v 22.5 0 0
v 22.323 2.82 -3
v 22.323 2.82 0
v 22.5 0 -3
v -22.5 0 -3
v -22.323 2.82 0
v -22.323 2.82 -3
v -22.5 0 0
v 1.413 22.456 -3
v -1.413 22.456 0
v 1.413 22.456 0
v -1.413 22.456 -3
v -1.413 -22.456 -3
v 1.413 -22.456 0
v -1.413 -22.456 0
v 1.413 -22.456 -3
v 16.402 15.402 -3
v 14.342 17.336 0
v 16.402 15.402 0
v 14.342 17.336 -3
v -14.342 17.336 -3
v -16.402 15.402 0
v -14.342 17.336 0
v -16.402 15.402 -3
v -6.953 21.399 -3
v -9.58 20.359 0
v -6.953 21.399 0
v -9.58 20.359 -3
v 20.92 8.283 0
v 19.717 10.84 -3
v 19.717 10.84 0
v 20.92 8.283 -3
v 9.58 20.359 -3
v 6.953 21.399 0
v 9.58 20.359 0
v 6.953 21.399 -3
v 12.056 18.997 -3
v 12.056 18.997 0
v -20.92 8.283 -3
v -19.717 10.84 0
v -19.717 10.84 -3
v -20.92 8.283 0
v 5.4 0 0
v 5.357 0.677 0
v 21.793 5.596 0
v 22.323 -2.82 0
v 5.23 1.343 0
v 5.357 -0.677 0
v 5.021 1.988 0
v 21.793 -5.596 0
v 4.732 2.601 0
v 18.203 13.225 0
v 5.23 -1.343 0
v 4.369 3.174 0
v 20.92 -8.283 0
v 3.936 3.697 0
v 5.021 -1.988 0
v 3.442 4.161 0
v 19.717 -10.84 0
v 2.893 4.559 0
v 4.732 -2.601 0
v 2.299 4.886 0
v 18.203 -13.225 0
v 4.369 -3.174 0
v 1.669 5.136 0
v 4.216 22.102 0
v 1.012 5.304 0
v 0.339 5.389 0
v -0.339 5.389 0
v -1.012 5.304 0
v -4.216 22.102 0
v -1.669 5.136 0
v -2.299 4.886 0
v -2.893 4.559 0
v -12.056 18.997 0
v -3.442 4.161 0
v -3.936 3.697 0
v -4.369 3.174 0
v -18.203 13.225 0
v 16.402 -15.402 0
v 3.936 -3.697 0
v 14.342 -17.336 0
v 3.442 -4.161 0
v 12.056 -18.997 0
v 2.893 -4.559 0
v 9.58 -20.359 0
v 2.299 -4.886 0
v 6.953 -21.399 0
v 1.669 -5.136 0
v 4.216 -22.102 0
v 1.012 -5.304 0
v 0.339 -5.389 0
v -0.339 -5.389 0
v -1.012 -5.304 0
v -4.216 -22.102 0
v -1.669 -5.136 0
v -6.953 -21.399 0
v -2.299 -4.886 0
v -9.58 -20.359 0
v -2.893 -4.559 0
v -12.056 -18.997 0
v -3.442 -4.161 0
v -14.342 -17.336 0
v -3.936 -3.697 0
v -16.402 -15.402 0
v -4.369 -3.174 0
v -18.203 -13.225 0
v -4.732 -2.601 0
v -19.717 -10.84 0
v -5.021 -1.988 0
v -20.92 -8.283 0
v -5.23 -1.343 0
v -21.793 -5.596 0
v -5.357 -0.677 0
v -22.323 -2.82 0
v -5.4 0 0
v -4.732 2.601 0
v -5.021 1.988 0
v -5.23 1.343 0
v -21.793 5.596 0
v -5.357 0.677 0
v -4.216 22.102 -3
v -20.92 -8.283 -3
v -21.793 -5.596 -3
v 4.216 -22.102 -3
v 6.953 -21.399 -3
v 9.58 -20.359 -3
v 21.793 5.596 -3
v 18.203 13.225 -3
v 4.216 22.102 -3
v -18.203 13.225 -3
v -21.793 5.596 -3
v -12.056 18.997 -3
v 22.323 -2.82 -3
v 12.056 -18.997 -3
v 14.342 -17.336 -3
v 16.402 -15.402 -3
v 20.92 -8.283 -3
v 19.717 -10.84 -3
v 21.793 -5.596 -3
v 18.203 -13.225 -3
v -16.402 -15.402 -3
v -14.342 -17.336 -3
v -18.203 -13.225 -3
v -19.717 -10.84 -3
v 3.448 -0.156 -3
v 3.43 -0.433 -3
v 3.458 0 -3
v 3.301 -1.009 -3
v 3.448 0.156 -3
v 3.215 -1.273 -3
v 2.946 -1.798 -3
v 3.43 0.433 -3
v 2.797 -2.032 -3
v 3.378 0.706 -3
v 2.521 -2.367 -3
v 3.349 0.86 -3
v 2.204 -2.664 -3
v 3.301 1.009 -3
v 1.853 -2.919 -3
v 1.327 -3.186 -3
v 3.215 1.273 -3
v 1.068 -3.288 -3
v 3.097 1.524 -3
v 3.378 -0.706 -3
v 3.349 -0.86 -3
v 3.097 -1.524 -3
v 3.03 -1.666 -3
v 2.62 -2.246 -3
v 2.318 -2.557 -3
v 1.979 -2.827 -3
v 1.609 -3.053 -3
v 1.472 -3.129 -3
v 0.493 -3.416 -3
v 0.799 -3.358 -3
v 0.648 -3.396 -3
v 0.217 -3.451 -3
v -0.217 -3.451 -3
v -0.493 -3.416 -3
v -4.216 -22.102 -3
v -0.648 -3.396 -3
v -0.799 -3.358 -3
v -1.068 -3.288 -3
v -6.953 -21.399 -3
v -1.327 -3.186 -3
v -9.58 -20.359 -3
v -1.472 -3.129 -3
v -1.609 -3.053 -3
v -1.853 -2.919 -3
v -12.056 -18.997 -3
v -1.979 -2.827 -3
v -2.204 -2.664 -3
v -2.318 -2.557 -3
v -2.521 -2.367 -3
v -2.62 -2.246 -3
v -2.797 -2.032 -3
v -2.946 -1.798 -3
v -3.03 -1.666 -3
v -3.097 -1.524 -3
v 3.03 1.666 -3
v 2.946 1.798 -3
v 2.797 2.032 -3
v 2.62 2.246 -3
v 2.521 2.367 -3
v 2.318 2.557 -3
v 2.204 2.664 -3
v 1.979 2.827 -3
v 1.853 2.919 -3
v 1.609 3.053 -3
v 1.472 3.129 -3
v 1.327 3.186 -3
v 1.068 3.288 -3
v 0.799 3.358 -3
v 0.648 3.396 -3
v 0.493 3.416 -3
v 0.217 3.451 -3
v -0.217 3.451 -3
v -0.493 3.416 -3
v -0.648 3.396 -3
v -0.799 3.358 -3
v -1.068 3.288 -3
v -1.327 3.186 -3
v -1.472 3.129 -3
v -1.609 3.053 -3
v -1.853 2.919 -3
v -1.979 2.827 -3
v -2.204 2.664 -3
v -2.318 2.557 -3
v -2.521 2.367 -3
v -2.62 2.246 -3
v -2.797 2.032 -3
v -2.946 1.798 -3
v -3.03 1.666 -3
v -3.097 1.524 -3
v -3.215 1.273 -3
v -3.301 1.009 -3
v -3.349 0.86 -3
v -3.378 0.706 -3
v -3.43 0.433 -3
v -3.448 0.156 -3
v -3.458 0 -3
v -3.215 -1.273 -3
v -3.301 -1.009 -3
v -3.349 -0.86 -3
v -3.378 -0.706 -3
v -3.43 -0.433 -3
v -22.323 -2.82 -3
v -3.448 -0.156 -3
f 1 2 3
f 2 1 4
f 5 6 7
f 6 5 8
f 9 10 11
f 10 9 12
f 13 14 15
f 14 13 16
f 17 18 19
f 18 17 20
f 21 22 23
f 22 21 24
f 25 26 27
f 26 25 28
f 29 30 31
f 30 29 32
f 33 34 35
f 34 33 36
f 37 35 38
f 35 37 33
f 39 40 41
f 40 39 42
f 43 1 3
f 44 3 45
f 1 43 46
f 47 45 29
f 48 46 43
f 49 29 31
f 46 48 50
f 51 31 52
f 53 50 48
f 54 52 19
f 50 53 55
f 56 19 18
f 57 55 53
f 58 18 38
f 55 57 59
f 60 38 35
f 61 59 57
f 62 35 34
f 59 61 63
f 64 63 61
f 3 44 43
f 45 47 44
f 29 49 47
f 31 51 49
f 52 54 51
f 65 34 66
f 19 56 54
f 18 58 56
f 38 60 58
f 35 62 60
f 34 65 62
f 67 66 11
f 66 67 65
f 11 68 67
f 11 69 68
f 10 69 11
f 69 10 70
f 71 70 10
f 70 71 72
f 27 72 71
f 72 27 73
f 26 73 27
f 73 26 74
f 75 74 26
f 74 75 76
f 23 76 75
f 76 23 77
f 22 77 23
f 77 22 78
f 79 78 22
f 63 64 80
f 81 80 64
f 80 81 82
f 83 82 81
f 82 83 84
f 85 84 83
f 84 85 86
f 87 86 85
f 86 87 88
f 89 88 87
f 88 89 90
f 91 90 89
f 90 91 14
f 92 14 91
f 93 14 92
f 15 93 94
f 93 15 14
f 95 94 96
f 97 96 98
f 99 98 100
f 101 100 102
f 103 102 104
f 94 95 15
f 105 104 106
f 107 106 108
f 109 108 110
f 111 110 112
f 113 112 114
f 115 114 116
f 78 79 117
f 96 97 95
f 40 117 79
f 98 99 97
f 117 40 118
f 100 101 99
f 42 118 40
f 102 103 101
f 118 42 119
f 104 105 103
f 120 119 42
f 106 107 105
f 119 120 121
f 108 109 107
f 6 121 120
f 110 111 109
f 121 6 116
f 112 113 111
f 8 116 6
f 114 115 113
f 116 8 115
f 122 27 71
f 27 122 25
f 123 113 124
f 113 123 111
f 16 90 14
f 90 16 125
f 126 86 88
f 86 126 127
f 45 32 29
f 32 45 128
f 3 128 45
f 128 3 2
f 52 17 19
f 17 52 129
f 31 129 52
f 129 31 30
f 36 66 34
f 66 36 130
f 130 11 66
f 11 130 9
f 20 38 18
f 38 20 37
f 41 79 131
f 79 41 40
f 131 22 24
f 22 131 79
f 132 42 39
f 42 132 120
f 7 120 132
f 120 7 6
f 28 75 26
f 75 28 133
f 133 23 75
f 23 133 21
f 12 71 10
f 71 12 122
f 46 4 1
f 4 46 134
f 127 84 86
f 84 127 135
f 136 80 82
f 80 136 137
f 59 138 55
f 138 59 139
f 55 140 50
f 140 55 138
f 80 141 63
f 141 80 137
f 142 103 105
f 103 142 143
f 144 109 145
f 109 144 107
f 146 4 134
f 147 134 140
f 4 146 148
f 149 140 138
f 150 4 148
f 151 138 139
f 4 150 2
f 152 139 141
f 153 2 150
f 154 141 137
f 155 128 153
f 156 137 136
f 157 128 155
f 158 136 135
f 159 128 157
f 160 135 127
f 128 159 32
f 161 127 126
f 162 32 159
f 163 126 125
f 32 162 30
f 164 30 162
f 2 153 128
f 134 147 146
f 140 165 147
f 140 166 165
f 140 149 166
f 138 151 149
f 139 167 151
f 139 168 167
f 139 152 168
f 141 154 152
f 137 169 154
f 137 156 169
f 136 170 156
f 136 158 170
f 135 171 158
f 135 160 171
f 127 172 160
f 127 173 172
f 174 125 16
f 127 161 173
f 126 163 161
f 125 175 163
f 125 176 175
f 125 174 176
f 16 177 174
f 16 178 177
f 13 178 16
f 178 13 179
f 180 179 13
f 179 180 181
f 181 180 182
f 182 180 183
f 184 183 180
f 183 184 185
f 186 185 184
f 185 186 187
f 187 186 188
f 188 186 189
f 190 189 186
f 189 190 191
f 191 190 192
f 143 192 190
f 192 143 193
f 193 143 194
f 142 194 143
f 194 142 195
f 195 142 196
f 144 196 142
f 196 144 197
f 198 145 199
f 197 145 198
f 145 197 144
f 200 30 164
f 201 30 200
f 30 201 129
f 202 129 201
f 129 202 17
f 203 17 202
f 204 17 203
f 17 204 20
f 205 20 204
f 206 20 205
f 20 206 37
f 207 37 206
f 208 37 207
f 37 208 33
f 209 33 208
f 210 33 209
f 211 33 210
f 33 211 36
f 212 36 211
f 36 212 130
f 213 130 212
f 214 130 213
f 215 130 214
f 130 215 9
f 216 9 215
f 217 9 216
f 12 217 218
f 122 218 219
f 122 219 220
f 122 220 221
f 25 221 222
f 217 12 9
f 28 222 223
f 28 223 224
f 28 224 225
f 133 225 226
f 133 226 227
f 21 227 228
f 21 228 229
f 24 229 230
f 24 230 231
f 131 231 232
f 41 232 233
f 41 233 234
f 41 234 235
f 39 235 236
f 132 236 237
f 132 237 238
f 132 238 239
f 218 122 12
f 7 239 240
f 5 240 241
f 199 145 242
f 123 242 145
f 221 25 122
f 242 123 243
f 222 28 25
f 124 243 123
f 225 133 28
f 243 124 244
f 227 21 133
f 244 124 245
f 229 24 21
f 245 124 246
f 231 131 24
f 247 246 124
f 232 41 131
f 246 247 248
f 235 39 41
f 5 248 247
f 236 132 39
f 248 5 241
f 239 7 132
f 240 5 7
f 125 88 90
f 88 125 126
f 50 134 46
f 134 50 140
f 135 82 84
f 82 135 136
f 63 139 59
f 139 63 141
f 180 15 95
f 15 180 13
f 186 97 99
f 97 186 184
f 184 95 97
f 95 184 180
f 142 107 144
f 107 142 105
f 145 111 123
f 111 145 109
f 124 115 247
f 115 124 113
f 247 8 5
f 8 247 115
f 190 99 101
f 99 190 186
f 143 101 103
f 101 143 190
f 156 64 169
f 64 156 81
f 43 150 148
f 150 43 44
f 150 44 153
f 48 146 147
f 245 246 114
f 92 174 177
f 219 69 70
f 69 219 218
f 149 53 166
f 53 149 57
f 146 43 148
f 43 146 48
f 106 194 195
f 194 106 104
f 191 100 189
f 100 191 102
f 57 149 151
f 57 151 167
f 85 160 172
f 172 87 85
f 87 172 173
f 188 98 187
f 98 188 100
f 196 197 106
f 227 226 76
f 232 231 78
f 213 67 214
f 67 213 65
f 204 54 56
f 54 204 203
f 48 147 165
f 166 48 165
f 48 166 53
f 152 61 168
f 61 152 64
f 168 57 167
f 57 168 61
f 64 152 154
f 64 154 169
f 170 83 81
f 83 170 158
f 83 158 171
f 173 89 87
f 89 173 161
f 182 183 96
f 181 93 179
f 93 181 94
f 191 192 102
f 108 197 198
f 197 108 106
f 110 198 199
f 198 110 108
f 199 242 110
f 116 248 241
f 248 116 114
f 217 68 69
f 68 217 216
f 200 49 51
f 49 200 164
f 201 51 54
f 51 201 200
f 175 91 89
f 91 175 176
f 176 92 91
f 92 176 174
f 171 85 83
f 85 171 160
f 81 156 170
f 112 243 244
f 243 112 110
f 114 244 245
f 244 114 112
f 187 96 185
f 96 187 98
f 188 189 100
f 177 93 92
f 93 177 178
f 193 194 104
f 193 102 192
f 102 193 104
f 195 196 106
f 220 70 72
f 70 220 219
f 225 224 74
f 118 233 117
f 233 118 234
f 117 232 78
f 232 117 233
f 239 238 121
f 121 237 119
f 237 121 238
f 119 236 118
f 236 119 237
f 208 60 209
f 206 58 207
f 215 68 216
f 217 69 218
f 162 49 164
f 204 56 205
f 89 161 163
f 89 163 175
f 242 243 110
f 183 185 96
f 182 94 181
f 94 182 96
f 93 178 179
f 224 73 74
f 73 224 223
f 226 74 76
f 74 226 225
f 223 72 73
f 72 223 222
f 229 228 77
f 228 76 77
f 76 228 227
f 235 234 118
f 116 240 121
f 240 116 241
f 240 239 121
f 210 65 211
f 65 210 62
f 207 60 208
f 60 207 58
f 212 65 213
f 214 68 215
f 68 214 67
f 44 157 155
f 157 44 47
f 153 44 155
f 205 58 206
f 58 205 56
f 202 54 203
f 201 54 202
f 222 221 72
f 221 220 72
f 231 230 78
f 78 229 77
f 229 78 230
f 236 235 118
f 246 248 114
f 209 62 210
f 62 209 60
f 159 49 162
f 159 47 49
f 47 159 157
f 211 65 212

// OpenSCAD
$fn = 50;


difference() {
	union() {
		translate(v = [0, 0, -3.0000000000]) {
			cylinder(h = 3, r = 22.5000000000);
		}
		translate(v = [0, 0, -3.0000000000]) {
			cylinder(h = 3, r = 2.8750000000);
		}
	}
	union() {
		translate(v = [0, 0, 0]) {
			rotate(a = [0, 0, 0]) {
				difference() {
					union() {
						translate(v = [0, 0, -3.0000000000]) {
							cylinder(h = 3, r = 2.6000000000);
						}
						translate(v = [0, 0, -3.9000000000]) {
							cylinder(h = 3.9000000000, r1 = 2.8750000000, r2 = 5.4000000000);
						}
						translate(v = [0, 0, -3.0000000000]) {
							cylinder(h = 3, r = 2.8750000000);
						}
						translate(v = [0, 0, -3.0000000000]) {
							cylinder(h = 3, r = 2.6000000000);
						}
					}
					union();
				}
			}
		}
	}
}
